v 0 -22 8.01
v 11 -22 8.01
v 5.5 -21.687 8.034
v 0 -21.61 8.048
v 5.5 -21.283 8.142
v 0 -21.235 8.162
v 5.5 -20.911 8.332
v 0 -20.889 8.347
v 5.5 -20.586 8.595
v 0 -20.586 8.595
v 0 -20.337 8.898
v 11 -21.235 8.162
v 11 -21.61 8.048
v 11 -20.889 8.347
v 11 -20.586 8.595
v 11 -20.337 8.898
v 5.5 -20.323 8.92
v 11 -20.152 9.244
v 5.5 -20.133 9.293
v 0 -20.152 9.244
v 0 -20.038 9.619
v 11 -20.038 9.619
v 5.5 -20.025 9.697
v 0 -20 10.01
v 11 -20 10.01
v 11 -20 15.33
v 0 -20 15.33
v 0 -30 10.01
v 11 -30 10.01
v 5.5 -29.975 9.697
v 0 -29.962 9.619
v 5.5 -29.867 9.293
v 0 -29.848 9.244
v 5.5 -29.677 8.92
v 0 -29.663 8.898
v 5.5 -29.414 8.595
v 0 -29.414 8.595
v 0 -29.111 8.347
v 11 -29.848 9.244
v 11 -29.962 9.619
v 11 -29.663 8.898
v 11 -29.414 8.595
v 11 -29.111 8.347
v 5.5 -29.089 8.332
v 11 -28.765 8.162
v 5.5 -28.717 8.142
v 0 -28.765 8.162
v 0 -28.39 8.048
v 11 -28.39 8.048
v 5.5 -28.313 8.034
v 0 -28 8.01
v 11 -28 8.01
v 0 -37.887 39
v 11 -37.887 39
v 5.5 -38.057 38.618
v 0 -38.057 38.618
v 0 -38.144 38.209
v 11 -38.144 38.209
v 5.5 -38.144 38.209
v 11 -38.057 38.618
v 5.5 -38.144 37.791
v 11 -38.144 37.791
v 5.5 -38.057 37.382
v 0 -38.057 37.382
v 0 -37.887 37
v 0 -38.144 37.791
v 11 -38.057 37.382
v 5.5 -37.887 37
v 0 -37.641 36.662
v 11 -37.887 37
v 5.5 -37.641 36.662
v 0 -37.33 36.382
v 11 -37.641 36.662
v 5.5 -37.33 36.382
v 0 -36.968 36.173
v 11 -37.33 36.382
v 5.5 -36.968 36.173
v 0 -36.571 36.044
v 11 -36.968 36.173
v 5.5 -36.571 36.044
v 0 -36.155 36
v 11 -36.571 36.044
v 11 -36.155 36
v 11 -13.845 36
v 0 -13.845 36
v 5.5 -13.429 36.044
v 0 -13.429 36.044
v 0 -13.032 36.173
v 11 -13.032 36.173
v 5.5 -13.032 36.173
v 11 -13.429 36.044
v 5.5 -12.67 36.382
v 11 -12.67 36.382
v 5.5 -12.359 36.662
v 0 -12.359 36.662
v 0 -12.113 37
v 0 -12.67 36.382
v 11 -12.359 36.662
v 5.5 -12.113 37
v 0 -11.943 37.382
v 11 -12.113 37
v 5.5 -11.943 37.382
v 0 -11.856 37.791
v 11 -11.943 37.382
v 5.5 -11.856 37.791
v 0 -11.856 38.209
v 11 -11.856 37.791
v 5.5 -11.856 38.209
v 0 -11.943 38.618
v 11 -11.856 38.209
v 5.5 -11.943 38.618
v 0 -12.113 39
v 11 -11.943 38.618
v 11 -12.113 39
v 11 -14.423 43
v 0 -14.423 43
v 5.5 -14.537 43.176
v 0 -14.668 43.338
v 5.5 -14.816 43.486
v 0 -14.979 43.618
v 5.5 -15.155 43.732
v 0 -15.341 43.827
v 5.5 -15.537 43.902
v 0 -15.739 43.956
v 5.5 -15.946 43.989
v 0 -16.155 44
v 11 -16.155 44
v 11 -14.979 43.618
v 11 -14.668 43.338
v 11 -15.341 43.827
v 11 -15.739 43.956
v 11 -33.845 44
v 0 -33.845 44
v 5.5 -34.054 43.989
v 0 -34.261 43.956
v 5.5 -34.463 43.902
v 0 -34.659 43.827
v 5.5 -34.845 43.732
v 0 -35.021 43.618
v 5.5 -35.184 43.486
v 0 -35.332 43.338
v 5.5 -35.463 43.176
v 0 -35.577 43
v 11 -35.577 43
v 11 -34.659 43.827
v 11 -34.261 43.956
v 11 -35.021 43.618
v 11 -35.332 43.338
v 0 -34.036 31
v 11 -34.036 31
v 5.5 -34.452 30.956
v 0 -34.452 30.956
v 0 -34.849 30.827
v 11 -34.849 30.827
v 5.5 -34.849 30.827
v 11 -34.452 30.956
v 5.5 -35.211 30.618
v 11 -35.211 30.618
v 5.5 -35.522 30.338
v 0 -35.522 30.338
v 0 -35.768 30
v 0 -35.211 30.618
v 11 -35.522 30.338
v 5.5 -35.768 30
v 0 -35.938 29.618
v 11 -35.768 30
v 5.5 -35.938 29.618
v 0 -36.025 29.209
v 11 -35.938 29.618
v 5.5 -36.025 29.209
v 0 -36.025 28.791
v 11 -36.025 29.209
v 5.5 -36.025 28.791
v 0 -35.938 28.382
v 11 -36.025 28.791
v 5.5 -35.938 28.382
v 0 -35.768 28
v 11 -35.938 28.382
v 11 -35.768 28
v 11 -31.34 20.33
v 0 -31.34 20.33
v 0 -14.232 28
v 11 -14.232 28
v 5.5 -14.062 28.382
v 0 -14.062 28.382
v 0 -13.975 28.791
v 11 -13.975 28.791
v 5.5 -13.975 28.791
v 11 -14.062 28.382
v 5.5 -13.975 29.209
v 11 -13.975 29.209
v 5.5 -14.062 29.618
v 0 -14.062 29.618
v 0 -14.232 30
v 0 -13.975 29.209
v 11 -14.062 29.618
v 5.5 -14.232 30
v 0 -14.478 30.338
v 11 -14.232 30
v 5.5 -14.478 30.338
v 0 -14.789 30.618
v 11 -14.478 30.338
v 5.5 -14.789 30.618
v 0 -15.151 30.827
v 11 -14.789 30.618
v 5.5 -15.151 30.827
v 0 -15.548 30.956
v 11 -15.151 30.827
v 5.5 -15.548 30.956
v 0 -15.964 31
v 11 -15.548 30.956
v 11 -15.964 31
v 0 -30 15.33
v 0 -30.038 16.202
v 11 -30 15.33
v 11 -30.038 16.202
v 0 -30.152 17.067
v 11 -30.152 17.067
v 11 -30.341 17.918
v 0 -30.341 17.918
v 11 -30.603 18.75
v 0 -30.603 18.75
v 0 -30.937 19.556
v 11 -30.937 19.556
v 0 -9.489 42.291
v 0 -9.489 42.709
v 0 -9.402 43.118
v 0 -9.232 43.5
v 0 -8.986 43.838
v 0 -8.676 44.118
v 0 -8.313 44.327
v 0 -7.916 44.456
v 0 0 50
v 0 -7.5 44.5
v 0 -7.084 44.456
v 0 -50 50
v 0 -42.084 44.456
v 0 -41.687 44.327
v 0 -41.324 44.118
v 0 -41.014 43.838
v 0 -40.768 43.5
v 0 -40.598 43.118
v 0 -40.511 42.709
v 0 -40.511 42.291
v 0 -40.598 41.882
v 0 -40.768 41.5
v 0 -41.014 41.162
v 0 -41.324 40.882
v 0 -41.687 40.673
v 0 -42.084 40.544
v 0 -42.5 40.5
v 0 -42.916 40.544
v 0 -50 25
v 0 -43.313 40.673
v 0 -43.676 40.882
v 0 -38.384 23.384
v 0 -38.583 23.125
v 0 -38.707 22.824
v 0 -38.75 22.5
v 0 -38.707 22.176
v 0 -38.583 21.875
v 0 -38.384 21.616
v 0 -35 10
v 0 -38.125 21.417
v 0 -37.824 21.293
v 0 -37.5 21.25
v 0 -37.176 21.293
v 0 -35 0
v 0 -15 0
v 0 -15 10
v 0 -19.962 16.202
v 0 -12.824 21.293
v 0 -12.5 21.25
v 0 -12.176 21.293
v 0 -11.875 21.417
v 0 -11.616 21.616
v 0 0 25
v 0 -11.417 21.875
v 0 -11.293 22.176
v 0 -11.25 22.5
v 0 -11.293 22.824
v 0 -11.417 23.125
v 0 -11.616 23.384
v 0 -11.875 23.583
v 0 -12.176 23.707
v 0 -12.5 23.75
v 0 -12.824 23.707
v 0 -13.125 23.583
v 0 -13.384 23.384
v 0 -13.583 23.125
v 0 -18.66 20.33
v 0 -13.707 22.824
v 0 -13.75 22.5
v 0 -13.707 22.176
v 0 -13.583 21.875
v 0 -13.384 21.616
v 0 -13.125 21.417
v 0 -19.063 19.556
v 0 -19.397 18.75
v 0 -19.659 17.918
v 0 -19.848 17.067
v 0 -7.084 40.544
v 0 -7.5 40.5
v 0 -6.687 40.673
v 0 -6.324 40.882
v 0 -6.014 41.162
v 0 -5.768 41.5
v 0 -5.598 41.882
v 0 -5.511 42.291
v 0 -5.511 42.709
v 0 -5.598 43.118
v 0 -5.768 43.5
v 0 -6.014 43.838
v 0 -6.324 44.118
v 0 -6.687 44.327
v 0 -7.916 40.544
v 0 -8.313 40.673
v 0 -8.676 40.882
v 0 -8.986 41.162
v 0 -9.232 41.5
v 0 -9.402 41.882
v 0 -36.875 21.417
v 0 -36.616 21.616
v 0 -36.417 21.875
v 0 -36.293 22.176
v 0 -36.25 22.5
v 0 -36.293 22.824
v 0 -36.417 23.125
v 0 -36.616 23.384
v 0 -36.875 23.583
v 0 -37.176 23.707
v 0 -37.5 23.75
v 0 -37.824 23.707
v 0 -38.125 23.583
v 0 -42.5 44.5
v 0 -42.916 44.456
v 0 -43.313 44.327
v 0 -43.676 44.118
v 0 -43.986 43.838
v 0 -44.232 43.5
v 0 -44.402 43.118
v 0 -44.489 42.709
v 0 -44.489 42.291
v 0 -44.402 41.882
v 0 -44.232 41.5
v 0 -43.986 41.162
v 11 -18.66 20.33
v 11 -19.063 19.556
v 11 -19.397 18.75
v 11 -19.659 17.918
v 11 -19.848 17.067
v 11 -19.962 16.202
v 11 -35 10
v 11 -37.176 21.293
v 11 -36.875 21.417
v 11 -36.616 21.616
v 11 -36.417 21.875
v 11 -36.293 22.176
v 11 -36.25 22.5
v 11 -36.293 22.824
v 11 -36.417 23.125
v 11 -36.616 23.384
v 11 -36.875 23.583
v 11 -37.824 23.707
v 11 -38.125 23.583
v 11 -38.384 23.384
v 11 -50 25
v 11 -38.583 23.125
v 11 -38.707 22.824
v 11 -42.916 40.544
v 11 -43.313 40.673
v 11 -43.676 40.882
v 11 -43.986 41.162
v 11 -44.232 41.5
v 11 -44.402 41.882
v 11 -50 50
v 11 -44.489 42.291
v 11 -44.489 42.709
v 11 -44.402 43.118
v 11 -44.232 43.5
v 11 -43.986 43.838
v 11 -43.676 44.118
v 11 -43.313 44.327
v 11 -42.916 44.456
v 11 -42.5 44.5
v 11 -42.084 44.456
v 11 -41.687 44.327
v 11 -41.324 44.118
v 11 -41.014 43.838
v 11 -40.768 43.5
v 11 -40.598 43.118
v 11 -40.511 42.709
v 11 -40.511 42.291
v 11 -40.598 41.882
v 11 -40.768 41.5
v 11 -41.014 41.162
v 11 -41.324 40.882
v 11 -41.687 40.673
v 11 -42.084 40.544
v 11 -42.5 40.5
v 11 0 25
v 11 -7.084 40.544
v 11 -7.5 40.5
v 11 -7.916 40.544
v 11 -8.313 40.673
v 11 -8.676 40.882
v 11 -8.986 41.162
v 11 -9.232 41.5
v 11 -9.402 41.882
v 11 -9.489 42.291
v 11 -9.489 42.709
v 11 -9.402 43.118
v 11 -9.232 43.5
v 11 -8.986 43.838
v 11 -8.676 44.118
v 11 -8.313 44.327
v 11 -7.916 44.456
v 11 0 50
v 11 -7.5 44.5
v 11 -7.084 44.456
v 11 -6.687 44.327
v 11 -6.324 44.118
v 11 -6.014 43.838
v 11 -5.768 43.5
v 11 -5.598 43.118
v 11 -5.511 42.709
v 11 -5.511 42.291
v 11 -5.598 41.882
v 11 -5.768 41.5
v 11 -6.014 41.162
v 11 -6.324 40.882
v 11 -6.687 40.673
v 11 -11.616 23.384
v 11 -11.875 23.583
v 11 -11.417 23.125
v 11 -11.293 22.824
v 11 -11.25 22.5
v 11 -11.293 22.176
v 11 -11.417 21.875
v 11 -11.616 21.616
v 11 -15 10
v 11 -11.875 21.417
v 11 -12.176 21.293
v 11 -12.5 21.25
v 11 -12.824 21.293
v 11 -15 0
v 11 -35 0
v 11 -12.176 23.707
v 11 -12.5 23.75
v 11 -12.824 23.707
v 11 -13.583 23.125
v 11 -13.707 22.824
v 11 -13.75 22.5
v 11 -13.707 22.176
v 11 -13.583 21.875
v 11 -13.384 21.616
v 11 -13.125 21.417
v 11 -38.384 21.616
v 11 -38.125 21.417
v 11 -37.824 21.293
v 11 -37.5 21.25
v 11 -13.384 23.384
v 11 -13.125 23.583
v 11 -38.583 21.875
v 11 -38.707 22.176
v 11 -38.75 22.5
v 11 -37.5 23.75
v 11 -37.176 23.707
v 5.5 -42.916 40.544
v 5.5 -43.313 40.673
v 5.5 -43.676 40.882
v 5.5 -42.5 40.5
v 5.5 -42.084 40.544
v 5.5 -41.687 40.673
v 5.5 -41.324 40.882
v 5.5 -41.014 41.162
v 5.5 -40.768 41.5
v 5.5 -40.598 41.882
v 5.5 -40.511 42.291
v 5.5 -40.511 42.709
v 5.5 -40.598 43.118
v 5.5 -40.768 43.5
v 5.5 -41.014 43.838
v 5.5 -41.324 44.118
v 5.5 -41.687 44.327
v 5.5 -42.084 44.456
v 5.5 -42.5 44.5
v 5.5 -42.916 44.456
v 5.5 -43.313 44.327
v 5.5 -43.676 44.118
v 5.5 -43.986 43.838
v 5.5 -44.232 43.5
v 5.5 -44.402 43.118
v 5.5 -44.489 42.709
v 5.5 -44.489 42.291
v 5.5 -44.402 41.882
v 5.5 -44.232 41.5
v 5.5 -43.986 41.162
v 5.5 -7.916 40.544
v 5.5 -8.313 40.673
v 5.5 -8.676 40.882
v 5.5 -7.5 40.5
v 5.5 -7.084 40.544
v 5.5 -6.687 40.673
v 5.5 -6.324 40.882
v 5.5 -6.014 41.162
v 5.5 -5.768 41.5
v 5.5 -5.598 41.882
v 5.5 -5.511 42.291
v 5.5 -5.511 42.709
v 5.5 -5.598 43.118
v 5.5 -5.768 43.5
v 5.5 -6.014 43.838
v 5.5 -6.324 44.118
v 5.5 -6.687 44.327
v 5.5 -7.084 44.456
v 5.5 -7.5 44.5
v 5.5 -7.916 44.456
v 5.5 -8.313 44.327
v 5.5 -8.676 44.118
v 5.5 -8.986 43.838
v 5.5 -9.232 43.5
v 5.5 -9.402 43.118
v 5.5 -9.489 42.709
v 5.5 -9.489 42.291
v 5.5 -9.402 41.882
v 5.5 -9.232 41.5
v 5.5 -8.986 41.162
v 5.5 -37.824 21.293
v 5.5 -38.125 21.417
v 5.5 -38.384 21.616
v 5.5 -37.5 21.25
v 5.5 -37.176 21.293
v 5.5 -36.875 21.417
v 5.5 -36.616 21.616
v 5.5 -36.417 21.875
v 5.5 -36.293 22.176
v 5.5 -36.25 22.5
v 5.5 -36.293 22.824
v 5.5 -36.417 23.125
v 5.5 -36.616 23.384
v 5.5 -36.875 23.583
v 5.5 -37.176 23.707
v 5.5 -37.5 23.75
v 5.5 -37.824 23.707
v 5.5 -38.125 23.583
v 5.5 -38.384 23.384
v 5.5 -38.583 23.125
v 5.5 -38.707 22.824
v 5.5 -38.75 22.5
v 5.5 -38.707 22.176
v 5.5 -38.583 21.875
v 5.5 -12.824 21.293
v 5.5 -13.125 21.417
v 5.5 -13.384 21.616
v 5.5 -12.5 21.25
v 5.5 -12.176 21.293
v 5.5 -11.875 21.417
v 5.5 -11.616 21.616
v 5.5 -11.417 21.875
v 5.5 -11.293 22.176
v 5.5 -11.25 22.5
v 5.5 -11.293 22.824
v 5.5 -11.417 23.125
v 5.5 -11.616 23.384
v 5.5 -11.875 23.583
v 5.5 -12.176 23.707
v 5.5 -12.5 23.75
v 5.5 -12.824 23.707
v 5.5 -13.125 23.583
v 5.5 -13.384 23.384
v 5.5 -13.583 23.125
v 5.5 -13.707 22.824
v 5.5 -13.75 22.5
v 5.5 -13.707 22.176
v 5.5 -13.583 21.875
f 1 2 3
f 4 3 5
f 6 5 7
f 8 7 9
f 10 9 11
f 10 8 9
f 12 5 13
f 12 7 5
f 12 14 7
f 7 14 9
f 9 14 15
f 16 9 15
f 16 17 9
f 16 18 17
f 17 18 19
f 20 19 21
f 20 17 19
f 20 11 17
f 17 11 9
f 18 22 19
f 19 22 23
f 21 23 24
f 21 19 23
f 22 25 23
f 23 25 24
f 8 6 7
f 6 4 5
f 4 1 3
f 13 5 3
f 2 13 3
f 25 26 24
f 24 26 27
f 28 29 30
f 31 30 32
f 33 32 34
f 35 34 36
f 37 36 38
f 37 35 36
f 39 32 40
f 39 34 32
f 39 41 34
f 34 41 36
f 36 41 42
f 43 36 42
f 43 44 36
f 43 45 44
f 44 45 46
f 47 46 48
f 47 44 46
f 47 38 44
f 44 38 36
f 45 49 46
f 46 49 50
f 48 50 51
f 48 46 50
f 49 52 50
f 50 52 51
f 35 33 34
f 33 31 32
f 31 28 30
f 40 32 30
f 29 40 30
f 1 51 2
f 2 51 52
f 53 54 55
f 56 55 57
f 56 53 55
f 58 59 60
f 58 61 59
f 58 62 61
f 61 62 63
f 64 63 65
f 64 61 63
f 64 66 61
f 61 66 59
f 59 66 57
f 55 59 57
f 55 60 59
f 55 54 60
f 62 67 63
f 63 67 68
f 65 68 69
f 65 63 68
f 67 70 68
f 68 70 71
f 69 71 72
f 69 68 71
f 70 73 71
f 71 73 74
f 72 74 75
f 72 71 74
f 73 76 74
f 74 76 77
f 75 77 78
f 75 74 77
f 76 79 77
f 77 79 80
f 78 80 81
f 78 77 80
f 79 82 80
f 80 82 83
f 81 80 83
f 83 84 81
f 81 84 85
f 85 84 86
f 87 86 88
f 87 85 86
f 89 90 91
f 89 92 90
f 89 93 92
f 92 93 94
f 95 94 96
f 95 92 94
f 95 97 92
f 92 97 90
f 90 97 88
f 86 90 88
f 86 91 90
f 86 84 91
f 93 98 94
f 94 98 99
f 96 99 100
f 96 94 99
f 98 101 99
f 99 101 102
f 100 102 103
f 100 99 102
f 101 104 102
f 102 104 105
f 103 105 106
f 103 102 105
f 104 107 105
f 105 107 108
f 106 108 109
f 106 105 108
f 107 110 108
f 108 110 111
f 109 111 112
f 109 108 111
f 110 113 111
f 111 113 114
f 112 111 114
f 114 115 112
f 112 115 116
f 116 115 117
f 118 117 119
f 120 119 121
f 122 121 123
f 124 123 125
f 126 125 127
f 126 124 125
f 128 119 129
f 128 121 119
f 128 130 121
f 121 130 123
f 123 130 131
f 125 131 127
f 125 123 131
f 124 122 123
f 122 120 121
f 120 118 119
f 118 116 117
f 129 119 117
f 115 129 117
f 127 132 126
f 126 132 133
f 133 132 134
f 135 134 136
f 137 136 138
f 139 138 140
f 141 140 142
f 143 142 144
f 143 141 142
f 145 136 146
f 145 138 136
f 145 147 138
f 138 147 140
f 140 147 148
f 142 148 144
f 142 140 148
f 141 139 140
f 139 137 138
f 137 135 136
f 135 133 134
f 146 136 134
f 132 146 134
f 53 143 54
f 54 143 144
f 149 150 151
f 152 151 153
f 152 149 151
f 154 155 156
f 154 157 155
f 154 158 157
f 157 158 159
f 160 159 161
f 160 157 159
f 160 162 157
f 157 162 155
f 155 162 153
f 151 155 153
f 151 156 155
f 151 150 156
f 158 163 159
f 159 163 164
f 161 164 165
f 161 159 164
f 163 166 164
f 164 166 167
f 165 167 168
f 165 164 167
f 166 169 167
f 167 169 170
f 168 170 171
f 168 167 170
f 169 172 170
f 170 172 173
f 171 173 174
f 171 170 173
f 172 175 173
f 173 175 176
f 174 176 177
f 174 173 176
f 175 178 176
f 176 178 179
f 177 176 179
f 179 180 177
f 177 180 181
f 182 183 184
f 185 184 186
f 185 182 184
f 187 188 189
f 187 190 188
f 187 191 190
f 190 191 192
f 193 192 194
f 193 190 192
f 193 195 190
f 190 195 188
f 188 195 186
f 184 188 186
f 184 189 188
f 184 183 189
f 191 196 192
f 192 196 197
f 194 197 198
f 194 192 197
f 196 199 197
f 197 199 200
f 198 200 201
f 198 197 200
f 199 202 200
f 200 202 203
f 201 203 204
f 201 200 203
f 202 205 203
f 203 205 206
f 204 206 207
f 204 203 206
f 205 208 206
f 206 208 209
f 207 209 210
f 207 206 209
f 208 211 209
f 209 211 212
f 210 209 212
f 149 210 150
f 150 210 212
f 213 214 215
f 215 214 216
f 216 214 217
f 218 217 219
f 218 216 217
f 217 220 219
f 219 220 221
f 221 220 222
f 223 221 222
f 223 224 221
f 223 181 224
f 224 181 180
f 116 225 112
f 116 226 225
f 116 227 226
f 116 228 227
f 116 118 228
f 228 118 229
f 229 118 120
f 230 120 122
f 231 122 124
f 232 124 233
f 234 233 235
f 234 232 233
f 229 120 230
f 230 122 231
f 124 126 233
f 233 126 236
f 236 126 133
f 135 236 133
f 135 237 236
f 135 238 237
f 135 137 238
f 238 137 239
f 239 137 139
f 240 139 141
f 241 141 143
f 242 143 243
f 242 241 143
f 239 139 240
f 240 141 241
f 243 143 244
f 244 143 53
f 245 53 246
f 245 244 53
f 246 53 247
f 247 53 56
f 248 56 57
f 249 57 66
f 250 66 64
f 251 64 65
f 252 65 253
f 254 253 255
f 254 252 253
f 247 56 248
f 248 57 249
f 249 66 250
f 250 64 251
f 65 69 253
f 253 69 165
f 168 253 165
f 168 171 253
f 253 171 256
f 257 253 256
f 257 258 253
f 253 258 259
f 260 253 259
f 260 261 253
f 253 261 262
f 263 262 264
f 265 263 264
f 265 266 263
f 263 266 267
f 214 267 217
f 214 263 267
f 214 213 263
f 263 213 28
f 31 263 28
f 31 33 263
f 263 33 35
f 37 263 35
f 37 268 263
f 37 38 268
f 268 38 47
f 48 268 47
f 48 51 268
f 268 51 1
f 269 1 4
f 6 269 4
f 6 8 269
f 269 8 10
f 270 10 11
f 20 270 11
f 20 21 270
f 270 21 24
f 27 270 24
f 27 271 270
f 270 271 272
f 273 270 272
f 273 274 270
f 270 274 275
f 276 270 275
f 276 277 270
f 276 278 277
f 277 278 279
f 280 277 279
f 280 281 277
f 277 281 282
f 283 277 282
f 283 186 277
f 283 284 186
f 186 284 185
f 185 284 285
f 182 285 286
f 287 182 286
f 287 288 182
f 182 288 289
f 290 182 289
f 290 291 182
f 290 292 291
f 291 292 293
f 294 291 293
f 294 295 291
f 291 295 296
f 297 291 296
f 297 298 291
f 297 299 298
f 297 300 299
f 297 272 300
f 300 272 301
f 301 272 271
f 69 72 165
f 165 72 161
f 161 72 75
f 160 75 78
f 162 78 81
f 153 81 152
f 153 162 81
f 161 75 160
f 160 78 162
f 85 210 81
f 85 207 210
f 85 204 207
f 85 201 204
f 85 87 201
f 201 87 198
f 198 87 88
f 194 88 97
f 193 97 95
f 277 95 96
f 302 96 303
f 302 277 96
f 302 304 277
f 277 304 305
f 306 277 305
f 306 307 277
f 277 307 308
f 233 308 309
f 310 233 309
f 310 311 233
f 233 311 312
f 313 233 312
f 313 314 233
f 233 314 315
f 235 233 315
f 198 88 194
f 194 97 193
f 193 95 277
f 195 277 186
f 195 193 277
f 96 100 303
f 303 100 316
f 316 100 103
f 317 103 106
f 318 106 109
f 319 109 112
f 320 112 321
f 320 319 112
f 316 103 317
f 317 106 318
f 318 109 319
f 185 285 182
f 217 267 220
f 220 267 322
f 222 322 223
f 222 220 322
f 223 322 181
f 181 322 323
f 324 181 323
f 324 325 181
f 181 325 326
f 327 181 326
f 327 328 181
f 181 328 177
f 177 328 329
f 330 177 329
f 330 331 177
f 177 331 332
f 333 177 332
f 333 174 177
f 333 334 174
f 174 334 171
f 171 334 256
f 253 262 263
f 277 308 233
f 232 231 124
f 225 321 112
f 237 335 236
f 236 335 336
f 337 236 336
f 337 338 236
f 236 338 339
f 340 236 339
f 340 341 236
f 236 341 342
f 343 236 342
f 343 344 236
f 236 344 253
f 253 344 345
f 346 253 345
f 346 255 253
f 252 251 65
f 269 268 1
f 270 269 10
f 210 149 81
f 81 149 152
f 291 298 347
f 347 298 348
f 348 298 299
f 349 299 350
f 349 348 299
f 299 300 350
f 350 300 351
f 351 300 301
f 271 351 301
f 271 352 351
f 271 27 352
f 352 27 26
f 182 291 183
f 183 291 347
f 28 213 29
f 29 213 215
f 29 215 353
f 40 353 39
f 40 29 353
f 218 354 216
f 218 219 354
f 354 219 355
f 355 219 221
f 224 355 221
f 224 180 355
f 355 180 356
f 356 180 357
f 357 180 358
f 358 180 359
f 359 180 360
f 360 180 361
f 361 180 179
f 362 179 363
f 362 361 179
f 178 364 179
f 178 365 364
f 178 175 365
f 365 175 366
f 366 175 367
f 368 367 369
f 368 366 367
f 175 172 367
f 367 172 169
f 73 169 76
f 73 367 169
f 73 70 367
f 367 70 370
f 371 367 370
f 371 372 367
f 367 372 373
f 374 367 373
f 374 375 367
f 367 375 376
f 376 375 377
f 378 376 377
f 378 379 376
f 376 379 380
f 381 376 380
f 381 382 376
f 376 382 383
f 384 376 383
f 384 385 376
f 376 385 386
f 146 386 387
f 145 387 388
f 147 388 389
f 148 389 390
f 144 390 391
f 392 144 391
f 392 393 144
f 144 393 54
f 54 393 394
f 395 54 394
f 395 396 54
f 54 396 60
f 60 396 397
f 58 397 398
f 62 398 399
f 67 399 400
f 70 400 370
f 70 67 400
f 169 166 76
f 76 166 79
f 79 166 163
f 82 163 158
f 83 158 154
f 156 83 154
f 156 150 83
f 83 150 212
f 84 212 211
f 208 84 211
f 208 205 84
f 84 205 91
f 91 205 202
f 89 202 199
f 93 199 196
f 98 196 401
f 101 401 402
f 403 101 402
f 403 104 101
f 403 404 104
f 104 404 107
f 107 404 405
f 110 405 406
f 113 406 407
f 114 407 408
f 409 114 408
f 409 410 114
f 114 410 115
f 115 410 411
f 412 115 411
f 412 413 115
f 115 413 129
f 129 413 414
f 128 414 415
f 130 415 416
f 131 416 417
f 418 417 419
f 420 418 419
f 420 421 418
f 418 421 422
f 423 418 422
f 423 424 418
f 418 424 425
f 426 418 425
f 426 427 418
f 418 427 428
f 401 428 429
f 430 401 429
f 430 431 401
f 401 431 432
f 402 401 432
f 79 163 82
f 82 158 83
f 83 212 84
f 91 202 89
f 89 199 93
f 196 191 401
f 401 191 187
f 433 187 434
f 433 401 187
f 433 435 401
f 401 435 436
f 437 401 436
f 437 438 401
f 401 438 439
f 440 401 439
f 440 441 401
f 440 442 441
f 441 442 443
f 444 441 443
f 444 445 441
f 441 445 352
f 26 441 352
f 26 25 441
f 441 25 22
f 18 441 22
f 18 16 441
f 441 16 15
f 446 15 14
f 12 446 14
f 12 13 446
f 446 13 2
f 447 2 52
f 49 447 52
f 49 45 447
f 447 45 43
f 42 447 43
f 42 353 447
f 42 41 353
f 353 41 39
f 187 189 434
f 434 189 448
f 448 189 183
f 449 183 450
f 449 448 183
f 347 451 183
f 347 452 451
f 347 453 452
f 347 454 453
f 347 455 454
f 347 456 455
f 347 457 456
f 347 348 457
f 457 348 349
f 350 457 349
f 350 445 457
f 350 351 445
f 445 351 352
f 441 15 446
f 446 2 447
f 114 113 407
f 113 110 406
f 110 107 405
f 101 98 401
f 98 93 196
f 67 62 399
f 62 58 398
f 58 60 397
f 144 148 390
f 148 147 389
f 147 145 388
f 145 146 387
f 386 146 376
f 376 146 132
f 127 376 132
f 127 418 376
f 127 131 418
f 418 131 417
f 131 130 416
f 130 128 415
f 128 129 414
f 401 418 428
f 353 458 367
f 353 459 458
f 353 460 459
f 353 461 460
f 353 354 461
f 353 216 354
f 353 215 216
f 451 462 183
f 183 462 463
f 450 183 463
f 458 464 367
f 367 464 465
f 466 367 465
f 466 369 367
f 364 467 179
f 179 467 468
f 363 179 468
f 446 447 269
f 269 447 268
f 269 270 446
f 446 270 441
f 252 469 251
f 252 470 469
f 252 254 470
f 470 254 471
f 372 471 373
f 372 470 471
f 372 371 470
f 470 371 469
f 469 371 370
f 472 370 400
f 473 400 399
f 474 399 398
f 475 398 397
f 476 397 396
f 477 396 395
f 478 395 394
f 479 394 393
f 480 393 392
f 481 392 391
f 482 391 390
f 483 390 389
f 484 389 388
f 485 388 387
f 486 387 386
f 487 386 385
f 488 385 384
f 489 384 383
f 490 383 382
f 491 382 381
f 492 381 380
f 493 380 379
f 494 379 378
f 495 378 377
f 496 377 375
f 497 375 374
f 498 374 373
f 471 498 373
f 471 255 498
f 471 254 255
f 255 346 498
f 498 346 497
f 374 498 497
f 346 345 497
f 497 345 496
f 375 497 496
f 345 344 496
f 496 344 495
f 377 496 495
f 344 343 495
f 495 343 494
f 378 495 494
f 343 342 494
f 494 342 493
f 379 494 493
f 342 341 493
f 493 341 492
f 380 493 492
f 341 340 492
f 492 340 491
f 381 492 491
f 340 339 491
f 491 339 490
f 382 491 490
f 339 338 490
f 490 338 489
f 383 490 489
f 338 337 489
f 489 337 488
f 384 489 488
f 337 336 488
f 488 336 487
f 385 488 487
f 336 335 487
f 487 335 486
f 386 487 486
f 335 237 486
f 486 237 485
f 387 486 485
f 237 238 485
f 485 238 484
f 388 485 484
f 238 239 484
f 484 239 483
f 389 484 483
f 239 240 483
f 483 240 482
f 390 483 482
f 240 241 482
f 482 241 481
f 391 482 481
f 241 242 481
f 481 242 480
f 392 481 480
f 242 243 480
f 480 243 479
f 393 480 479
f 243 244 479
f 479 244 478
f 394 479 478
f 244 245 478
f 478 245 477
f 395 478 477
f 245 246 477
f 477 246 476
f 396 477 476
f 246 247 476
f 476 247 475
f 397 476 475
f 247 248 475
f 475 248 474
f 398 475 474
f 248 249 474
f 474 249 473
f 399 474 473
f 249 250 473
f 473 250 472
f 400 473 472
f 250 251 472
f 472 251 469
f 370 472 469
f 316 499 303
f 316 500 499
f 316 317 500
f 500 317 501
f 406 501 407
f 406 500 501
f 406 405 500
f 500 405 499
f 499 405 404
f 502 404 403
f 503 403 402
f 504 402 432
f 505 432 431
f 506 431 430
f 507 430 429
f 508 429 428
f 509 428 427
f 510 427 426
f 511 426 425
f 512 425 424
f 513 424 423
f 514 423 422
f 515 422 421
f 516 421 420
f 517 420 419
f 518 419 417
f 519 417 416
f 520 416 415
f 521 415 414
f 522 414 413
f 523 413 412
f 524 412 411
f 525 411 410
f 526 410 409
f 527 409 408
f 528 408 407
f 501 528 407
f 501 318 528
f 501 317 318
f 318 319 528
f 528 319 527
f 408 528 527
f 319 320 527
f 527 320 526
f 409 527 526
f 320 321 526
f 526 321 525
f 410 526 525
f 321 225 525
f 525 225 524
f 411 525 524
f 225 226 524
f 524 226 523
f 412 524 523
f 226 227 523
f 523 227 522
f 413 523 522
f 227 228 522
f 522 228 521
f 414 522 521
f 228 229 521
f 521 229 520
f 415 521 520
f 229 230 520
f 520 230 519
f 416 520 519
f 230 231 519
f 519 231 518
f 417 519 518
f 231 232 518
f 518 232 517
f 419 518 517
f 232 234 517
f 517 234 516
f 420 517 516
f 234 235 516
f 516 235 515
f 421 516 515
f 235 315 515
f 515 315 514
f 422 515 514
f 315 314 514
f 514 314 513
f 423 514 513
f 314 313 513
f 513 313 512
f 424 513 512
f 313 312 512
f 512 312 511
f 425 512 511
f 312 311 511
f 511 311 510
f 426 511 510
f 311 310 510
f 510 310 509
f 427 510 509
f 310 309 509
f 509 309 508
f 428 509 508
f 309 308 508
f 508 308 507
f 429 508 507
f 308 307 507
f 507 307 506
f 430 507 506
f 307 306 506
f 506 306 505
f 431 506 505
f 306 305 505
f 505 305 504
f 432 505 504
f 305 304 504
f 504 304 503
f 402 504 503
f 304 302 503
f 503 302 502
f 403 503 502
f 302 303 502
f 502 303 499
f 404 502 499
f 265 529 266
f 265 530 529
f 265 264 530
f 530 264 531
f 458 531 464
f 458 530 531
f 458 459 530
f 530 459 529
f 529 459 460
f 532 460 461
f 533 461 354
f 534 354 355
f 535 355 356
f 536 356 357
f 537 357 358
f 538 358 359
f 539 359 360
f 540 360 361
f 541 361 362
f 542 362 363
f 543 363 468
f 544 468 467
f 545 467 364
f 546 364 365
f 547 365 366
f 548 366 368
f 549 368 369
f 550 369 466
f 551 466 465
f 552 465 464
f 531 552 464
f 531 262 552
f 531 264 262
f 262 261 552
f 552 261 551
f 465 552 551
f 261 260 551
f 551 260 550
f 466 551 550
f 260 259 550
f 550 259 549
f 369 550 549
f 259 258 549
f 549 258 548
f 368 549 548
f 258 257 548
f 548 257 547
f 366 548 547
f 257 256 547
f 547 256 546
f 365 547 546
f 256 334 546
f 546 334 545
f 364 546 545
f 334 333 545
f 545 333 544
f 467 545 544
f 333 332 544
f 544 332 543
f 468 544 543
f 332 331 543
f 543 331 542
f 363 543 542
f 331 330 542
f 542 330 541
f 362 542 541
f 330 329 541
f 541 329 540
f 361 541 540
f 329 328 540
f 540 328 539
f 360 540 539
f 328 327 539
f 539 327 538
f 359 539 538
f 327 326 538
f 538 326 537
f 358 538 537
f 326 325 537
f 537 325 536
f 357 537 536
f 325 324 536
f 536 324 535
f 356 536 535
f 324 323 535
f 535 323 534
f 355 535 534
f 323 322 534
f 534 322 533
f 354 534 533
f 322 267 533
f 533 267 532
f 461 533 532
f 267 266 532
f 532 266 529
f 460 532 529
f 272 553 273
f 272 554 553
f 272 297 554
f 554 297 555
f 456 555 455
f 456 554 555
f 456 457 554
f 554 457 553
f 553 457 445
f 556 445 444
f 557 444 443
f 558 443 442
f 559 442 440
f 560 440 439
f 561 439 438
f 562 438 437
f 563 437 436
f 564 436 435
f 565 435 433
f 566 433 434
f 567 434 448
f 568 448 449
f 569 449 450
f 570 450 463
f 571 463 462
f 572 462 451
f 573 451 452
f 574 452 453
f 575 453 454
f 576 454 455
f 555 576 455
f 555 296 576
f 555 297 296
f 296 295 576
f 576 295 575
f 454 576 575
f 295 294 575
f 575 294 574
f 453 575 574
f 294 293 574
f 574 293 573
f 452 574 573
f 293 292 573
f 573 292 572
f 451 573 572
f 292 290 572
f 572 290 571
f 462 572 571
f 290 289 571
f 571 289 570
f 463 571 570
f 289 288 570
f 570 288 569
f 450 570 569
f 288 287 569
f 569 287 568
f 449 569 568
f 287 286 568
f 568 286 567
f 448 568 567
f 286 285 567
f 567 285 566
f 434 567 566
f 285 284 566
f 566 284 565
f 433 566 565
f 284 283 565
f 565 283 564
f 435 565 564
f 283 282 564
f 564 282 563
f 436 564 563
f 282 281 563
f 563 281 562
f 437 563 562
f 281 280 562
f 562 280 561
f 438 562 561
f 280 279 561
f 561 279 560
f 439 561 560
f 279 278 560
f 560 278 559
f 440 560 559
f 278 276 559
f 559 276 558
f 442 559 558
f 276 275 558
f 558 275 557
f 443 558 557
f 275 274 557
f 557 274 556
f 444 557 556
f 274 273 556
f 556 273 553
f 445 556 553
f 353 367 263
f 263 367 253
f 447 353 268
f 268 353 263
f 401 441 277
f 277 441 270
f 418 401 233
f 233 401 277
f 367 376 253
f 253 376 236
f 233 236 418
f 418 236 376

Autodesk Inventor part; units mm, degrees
ref_plane "YZ Plane" through (0, 0, 0) normal (1, 0, 0) x (0, 1, 0)
ref_plane "XZ Plane" through (0, 0, 0) normal (0, 1, 0) x (-1, 0, 0)
ref_plane "XY Plane" through (0, 0, 0) normal (0, 0, 1) x (1, 0, 0)
sketch "スケッチ1" plane through (0, 0, 0) normal (1, 0, 0) x (0, 1, 0)
  line L0 (50, 50) -> (-50, 50)
  line L1 (-50, 50) -> (-50, -50)
  line L2 (-50, -50) -> (50, -50)
  line L3 (50, -50) -> (50, 50)
  point P0 (0, 0)
  dimension "d0" = 100
  dimension "d2" = 100
  dimension "d3" = 50
  dimension "d4" = 50
extrude "押し出し1" add sketch "スケッチ1" along normal blind 11
sketch "スケッチ2" plane through (11, 0, 0) normal (1, 0, 0) x (0, 0, -1)
  line L0 (-50, 50) -> (-50, -50) projected
  line L1 (-50, -50) -> (50, -50) projected
  line L2 (50, -50) -> (50, 50) projected
  line L3 (50, 50) -> (-50, 50) projected
  line L4 (-25, -50) -> (-10, -35)
  line L5 (-10, -35) -> (15, -35)
  line L6 (15, -35) -> (50, -25.6218)
  line L7 (-50, 0) -> (-25, 0)
  line L8 (-25, 0) -> (-10, -15)
  line L9 (-10, -15) -> (12.367, -15)
  line L10 (12.367, -15) -> (30, -10.2752)
  line L11 (30, -10.2752) -> (30, 50)
  line L12 (-25, -50) -> (-50, -50)
  line L13 (-50, -50) -> (-50, 0)
  point P0 (0, 0)
  dimension "d7" = 135
  dimension "d8" = 135
  dimension "d9" = 25
  dimension "d10" = 25
  dimension "d11" = 50
  dimension "d16" = 165
  dimension "d17" = 20
  dimension "d18" = 20
  dimension "d89" = 20
  dimension "d90" = 25
extrude "押し出し2" cut sketch "スケッチ2" against normal blind 11 contours L7 L8 L9 L10 L11 L3 L2 L6 L5 L4 L1 L0 keep common part
sketch "スケッチ3" plane through (11, 0, 0) normal (1, 0, 0) x (0, 0, -1)
  line L0 (30, -10.2752) -> (30, 50) projected
  line L1 (12.367, -15) -> (30, -10.2752) projected
  line L2 (-10, -15) -> (12.367, -15) projected
  line L3 (-25, 0) -> (-10, -15) projected
  line L4 (-50, 0) -> (-25, 0) projected
  line L5 (-50, 0) -> (-50, -50) projected
  line L6 (-50, -50) -> (-25, -50) projected
  line L7 (-10, -35) -> (-25, -50) projected
  line L8 (15, -35) -> (-10, -35) projected
  line L9 (50, -25.6218) -> (15, -35) projected
  line L10 (50, -25.6218) -> (50, 50) projected
  line L11 (50, 50) -> (30, 50) projected
  circle A0 centre (-42.5, -7.5) radius 2
  circle A1 centre (-42.5, -42.5) radius 2
  circle A2 centre (-22.5, -12.5) radius 1.25
  circle A3 centre (-22.5, -37.5) radius 1.25
  arc A4 (36, 46) -> (44, 46) centre (40, 46) ccw
  line L12 (36, 46) -> (36, 50)
  line L13 (44, 46) -> (44, 50)
  point P0 (0, 0)
  dimension "d21" = 8
  dimension "d25" = 4
  dimension "d30" = 6
  dimension "d31" = 4
  dimension "d35" = 25
  dimension "d36" = 35
  dimension "d37" = 12.5
  dimension "d38" = 7.5
  dimension "d40" = 7.5
  dimension "d41" = 7.5
  dimension "d61" = 2.5
  dimension "d68" = 20
  dimension "d69" = 20
extrude "押し出し5" cut sketch "スケッチ3" against normal blind 11 contours L0 L11 L12 A4 L13 L10 L9 L8 L7 L6 L5 L4 L3 L2 L1 keep common part
sketch "スケッチ4" plane through (11, 0, 0) normal (1, 0, 0) x (0, 0, -1)
  line L0 (50, 50) -> (30, 50) projected
  circle A0 centre (33, 46) radius 1
  arc A1 (36, 46) -> (44, 46) centre (40, 46) ccw projected
  point P0 (0, 0)
  dimension "d47" = 4
  dimension "d49" = 2
  dimension "d64" = 7
hole "穴1" at (11, 46, -33) direction (-1, 0, 0) diameter 2 end through all
pattern_circular "円形状パターン2" count 5 over 180 about axis through (11, 46, -40) along (1, 0, 0) of "穴1"
sketch "スケッチ5" plane through (11, 0, 0) normal (1, 0, 0) x (0, 0, -1)
  line L0 (-10, -15) -> (12.367, -15) projected
  circle A0 centre (-22.5, -12.5) radius 1.25 projected
  circle A1 centre (-22.5, -37.5) radius 1.25 projected
  circle A2 centre (2.5, -20) radius 1.3
  circle A3 centre (2.5, -30) radius 1.3
  point P0 (0, 0)
  dimension "d70" = 2.6
  dimension "d74" = 5
  dimension "d75" = 10
  dimension "d91" = 25
  dimension "d92" = 25
hole "穴2" at (11, -20, -2.5) at (11, -30, -2.5) direction (-1, 0, 0) diameter 2.2 end through all
sketch "スケッチ6" plane through (11, 0, 0) normal (1, 0, 0) x (0, 0, -1)
  circle A0 centre (2.5, -20) radius 1.1 projected
  circle A1 centre (2.5, -30) radius 1.1 projected
  line L0 (12.367, -15) -> (30, -10.2752) projected
  line L1 (-10, -15) -> (12.367, -15) projected
  line L2 (-25, 0) -> (-10, -15) projected
  line L3 (-50, 0) -> (-25, 0) projected
  line L4 (-50, 0) -> (-50, -50) projected
  line L5 (-50, -50) -> (-25, -50) projected
  line L6 (-10, -35) -> (-25, -50) projected
  line L7 (15, -35) -> (-10, -35) projected
  line L8 (50, -25.6218) -> (15, -35) projected
  circle A2 centre (-22.5, -12.5) radius 1.25 projected
  circle A3 centre (-22.5, -37.5) radius 1.25 projected
  circle A4 centre (-42.5, -7.5) radius 2 projected
  circle A5 centre (-42.5, -42.5) radius 2 projected
  line L9 (0, -15) -> (0, -35)
  point P0 (0, 0)
  dimension "d93" = 10
extrude "押し出し6" cut sketch "スケッチ6" against normal blind 11 contours L1 L9 L7 L6 L5 L4 L3 L2 keep common part
sketch "スケッチ7" plane through (11, 0, 0) normal (1, 0, 0) x (0, 0, -1)
  line L0 (-10, -15) -> (0, -15) projected
  line L1 (-50, 0) -> (-50, -50) projected
  line L2 (-50, -50) -> (-25, -50) projected
  line L3 (-31, -12.5) -> (-31, -37.5)
  line L4 (-31, -37.5) -> (-18.0096, -30)
  line L5 (-31, -12.5) -> (-18.0096, -20)
  line L6 (-18.0096, -20) -> (-8.0096, -20)
  line L7 (-8.0096, -20) -> (-8.0096, -30)
  line L8 (-8.0096, -30) -> (-18.0096, -30)
  circle A0 centre (-42.5, -42.5) radius 2 projected
  circle A1 centre (-42.5, -7.5) radius 2 projected
  circle A2 centre (-22.5, -37.5) radius 1.25 projected
  circle A3 centre (-22.5, -12.5) radius 1.25 projected
  line L9 (0, -15) -> (0, -35) projected
  line L10 (-25, 0) -> (-10, -15) projected
  line L11 (-50, 0) -> (-25, 0) projected
  line L12 (-10, -35) -> (-25, -50) projected
  line L13 (0, -35) -> (-10, -35) projected
  point P0 (0, 0)
  dimension "d101" = 25
  dimension "d102" = 12.5
  dimension "d105" = 150
  dimension "d106" = 150
  dimension "d107" = 10
  dimension "d109" = 10
  dimension "d110" = 5
  dimension "d120" = 19
sketch "スケッチ8" plane through (11, 0, 0) normal (1, 0, 0) x (0, 0, -1)
  line L0 (0, -15) -> (0, -35) projected
  line L1 (-50, 0) -> (-25, 0) projected
  line L2 (0, -35) -> (-10, -35) projected
  line L3 (-36, -10.3812) -> (-36, -39.6188)
  line L4 (-36, -39.6188) -> (-44, -35)
  line L5 (-44, -35) -> (-44, -15)
  line L6 (-44, -15) -> (-36, -10.3812)
  point P0 (0, 0)
  dimension "d113" = 20
  dimension "d115" = 8
  dimension "d116" = 120
  dimension "d117" = 120
  dimension "d118" = 15
  dimension "d119" = 36
extrude "押し出し11" cut sketch "スケッチ7" against normal blind 11 keep common part
extrude "押し出し12" cut sketch "スケッチ8" against normal blind 11
fillet "フィレット1" radius 10 2 edges at (5.5, -20, 18.0096) (5.5, -30, 18.0096)
fillet "フィレット2" radius 2 8 edges at (5.5, -12.5, 31) (5.5, -37.5, 31) (5.5, -35, 44) (5.5, -15, 44) (5.5, -10.3812, 36) (5.5, -39.6188, 36) (5.5, -30, 8.0096) (5.5, -20, 8.0096)
properties part number "Arm_MiniLink_1" material "アセタール樹脂、白"
